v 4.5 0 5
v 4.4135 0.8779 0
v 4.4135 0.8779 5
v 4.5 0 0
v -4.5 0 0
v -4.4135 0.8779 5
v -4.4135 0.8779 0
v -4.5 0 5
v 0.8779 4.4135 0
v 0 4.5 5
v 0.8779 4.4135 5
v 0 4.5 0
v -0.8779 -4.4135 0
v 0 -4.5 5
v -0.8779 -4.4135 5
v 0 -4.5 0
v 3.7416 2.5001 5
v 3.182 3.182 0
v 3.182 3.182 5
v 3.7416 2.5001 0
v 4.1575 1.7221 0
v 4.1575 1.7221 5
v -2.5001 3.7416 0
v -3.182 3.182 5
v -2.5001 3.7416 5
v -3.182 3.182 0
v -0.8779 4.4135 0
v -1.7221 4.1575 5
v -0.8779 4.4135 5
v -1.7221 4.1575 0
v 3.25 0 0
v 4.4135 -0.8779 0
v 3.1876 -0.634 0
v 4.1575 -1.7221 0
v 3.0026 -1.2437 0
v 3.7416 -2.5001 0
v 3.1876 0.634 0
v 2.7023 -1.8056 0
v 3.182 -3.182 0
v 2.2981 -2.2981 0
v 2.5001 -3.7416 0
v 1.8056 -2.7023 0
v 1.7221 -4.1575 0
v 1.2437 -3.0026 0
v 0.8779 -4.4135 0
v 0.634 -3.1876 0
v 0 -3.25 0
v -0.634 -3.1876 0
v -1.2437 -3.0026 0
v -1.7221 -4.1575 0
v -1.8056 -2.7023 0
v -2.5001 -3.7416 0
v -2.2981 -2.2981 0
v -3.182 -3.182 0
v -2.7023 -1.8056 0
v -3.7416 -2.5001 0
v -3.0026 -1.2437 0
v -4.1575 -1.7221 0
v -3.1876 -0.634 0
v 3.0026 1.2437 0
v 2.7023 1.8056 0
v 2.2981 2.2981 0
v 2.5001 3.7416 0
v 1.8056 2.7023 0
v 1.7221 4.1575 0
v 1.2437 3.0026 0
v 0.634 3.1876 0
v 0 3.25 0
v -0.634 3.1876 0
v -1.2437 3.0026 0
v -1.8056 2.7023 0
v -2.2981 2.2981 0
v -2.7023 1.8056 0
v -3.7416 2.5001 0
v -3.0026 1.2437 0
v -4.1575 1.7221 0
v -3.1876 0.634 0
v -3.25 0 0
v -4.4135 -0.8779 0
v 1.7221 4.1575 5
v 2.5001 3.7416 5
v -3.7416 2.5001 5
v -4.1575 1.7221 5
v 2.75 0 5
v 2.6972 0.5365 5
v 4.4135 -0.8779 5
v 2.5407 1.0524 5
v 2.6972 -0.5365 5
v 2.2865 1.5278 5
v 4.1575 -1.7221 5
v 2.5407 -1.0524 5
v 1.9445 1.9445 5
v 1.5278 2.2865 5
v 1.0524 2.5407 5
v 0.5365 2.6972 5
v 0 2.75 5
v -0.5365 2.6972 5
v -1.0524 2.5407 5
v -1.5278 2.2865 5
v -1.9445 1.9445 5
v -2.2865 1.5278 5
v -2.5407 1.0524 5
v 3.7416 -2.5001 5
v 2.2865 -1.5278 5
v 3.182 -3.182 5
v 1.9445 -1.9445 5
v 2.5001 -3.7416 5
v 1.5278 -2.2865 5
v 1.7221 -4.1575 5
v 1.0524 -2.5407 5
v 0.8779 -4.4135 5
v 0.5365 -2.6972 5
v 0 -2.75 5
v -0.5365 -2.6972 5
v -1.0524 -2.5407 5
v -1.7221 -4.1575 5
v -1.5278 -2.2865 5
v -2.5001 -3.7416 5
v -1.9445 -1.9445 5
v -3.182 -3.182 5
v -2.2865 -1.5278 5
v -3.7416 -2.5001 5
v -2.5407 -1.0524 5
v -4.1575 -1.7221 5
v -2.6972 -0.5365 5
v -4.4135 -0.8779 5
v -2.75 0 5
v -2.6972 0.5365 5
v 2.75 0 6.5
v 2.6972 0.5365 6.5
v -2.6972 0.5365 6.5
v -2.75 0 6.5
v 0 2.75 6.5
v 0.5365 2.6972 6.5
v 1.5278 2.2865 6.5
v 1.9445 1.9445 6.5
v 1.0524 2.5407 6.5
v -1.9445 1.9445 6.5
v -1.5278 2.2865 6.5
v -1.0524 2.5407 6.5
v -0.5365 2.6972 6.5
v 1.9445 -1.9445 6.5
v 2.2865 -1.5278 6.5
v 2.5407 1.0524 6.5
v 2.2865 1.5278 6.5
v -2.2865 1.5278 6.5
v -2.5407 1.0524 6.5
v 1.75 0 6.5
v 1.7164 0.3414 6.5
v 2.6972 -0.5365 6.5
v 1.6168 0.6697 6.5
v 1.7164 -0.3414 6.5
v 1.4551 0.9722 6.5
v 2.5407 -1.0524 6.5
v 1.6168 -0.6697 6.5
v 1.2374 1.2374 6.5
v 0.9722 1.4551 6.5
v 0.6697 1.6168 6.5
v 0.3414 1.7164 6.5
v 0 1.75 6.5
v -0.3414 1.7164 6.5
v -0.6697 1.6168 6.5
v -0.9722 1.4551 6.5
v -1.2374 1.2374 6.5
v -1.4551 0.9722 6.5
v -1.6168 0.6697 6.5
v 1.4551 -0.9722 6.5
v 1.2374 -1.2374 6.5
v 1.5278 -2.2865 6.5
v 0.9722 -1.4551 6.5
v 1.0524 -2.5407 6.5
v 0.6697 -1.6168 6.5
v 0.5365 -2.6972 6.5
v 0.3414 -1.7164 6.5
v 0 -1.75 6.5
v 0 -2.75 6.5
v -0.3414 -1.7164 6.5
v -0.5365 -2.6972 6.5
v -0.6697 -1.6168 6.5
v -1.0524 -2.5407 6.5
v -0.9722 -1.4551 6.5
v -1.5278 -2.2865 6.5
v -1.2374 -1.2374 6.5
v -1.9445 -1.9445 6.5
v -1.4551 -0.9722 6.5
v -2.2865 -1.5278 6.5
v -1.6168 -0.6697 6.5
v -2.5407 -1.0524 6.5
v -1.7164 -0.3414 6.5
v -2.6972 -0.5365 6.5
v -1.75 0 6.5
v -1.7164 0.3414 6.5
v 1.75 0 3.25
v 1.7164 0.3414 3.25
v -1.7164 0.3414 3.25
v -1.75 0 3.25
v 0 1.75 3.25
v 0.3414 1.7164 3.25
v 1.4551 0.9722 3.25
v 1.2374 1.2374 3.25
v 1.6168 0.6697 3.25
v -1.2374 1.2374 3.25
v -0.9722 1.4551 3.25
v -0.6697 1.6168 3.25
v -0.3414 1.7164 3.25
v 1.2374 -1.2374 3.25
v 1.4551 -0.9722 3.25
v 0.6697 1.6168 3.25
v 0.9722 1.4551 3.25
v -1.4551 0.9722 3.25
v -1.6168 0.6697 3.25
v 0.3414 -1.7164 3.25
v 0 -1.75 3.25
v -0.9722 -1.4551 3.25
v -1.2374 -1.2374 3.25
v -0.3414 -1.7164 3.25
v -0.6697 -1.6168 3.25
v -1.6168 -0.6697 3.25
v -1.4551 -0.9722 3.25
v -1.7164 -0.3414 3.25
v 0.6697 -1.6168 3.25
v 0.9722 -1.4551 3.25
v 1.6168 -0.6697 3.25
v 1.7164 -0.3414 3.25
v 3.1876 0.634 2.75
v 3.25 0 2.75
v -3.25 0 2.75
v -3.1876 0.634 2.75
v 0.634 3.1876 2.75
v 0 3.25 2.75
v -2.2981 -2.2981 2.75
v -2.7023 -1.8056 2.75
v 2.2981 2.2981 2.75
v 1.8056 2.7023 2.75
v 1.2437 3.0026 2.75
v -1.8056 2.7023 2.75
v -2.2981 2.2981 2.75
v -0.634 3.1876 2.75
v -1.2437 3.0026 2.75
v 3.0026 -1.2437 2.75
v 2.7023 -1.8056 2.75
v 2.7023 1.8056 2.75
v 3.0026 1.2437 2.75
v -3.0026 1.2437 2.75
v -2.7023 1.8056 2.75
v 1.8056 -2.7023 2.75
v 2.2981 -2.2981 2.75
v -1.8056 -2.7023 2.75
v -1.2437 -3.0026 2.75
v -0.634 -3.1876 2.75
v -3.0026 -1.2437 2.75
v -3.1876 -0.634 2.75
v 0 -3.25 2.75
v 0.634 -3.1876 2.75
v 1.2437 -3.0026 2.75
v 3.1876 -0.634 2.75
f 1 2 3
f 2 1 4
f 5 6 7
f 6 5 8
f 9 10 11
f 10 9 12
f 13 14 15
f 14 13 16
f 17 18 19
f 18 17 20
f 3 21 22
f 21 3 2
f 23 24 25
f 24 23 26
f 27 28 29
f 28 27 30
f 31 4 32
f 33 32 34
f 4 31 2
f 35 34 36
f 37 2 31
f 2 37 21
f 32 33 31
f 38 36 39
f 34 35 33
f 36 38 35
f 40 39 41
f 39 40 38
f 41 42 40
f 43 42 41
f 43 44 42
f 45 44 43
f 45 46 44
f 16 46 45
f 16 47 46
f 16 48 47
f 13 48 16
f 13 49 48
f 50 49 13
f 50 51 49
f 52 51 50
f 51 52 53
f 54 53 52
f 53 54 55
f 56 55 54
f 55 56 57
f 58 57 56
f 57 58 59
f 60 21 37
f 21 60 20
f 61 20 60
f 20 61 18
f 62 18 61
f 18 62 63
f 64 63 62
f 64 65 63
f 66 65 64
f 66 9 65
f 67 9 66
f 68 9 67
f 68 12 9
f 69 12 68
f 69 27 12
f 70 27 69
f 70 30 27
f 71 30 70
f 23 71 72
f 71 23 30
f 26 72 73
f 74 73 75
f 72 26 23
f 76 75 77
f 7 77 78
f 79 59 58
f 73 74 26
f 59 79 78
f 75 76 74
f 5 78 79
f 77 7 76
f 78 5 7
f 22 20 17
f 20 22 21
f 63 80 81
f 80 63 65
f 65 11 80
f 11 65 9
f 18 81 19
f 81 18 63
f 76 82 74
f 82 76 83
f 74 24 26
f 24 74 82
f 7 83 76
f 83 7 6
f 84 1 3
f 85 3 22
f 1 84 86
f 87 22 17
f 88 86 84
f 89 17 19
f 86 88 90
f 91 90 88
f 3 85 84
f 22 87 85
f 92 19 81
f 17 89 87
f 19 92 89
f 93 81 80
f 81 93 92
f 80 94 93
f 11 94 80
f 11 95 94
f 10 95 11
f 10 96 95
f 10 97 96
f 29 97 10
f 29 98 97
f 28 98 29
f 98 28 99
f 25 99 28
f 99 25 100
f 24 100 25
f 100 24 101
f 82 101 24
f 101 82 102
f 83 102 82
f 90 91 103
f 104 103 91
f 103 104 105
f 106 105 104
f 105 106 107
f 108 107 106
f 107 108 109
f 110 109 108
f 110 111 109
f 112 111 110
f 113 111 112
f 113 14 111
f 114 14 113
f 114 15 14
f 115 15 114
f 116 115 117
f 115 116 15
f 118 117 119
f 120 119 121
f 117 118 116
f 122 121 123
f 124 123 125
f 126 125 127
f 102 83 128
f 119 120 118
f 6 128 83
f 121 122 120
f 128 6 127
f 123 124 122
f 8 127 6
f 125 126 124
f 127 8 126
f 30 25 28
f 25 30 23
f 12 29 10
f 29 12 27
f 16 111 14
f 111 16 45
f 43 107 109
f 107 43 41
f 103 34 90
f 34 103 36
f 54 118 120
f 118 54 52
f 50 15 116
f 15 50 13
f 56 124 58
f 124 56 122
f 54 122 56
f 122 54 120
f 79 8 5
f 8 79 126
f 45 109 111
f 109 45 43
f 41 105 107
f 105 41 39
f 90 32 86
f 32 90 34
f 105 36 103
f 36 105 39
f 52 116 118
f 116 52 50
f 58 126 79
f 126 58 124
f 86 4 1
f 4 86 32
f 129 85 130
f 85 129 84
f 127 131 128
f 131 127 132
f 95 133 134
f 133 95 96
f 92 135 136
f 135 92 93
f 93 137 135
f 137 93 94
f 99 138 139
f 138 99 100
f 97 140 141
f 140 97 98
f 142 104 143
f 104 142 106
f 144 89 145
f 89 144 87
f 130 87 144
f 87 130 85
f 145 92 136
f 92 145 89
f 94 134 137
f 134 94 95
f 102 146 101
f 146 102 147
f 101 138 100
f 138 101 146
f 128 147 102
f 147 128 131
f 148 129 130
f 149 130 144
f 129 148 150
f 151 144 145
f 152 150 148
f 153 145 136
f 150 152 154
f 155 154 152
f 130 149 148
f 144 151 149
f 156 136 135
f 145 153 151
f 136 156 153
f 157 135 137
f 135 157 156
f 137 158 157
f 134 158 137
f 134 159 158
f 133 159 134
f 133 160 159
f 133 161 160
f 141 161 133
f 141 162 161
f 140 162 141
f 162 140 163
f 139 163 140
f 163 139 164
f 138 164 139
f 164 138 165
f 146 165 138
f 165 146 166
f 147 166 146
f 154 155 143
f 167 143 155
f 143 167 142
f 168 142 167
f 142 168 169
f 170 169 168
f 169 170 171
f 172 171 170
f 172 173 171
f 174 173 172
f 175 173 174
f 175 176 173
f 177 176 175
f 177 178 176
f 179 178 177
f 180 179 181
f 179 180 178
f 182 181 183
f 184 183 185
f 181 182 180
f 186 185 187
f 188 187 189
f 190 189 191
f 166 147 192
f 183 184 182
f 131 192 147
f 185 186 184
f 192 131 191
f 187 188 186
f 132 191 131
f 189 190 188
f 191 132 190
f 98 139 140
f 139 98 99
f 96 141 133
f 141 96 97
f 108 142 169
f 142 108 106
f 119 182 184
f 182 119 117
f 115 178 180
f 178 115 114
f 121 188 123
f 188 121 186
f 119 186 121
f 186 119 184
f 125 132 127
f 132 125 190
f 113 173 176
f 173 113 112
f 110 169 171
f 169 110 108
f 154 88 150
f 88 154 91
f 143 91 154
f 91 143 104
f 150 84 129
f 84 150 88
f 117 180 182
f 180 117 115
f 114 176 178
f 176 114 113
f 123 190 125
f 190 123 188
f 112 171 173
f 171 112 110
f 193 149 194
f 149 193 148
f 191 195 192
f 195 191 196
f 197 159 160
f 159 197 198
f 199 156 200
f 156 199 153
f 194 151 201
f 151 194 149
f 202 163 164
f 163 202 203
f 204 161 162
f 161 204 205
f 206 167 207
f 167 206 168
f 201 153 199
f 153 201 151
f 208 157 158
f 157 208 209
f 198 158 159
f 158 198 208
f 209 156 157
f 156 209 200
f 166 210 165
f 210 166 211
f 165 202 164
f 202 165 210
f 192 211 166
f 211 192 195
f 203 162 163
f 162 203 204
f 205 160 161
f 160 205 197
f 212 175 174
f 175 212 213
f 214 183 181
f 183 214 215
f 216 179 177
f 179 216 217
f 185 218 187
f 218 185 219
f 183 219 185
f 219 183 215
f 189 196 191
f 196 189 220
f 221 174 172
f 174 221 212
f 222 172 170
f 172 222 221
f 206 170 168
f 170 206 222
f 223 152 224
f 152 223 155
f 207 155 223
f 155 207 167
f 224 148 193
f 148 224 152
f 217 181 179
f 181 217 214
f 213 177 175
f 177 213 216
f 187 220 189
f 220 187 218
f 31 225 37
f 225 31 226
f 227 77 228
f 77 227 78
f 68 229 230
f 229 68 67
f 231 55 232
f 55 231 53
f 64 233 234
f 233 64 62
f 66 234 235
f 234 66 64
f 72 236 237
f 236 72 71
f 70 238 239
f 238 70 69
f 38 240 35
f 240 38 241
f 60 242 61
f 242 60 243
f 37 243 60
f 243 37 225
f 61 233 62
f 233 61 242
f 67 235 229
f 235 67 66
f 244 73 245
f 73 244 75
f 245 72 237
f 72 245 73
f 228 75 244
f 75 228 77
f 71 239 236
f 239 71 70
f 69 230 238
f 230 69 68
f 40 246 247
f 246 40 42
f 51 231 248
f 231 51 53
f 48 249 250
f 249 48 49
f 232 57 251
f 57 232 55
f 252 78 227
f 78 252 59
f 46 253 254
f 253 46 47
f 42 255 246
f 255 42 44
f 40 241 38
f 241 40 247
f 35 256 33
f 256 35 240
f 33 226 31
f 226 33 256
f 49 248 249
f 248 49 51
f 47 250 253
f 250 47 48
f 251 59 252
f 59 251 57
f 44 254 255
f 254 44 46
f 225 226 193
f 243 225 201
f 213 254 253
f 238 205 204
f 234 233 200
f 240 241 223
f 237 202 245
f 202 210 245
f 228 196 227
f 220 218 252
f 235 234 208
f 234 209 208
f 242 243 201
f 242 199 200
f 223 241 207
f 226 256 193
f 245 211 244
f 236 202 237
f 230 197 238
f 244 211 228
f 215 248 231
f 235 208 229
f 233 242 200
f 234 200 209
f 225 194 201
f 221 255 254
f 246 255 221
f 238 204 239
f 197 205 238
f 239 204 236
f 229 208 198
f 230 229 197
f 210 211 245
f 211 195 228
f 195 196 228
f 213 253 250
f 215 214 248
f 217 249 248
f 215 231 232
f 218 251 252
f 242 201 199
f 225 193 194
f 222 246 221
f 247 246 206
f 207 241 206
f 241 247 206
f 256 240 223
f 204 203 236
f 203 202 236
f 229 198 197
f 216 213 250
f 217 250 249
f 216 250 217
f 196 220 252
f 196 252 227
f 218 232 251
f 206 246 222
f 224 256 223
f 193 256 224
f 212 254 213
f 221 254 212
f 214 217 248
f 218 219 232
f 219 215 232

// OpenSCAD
difference() {
    union() {
        cylinder(r=4.50, h=5, $fn=32);
        cylinder(r=2.75, h=6.5, $fn=32);
    }
    cylinder(r=1.75, h=7, $fn=32);
    cylinder(r=3.25, h=2.75, $fn=32);
    translate([0,0,2.75])
        cylinder(r1=3.25, r2=1.75, h=0.5, $fn=32);
    //cube([10,10,10]);
}
